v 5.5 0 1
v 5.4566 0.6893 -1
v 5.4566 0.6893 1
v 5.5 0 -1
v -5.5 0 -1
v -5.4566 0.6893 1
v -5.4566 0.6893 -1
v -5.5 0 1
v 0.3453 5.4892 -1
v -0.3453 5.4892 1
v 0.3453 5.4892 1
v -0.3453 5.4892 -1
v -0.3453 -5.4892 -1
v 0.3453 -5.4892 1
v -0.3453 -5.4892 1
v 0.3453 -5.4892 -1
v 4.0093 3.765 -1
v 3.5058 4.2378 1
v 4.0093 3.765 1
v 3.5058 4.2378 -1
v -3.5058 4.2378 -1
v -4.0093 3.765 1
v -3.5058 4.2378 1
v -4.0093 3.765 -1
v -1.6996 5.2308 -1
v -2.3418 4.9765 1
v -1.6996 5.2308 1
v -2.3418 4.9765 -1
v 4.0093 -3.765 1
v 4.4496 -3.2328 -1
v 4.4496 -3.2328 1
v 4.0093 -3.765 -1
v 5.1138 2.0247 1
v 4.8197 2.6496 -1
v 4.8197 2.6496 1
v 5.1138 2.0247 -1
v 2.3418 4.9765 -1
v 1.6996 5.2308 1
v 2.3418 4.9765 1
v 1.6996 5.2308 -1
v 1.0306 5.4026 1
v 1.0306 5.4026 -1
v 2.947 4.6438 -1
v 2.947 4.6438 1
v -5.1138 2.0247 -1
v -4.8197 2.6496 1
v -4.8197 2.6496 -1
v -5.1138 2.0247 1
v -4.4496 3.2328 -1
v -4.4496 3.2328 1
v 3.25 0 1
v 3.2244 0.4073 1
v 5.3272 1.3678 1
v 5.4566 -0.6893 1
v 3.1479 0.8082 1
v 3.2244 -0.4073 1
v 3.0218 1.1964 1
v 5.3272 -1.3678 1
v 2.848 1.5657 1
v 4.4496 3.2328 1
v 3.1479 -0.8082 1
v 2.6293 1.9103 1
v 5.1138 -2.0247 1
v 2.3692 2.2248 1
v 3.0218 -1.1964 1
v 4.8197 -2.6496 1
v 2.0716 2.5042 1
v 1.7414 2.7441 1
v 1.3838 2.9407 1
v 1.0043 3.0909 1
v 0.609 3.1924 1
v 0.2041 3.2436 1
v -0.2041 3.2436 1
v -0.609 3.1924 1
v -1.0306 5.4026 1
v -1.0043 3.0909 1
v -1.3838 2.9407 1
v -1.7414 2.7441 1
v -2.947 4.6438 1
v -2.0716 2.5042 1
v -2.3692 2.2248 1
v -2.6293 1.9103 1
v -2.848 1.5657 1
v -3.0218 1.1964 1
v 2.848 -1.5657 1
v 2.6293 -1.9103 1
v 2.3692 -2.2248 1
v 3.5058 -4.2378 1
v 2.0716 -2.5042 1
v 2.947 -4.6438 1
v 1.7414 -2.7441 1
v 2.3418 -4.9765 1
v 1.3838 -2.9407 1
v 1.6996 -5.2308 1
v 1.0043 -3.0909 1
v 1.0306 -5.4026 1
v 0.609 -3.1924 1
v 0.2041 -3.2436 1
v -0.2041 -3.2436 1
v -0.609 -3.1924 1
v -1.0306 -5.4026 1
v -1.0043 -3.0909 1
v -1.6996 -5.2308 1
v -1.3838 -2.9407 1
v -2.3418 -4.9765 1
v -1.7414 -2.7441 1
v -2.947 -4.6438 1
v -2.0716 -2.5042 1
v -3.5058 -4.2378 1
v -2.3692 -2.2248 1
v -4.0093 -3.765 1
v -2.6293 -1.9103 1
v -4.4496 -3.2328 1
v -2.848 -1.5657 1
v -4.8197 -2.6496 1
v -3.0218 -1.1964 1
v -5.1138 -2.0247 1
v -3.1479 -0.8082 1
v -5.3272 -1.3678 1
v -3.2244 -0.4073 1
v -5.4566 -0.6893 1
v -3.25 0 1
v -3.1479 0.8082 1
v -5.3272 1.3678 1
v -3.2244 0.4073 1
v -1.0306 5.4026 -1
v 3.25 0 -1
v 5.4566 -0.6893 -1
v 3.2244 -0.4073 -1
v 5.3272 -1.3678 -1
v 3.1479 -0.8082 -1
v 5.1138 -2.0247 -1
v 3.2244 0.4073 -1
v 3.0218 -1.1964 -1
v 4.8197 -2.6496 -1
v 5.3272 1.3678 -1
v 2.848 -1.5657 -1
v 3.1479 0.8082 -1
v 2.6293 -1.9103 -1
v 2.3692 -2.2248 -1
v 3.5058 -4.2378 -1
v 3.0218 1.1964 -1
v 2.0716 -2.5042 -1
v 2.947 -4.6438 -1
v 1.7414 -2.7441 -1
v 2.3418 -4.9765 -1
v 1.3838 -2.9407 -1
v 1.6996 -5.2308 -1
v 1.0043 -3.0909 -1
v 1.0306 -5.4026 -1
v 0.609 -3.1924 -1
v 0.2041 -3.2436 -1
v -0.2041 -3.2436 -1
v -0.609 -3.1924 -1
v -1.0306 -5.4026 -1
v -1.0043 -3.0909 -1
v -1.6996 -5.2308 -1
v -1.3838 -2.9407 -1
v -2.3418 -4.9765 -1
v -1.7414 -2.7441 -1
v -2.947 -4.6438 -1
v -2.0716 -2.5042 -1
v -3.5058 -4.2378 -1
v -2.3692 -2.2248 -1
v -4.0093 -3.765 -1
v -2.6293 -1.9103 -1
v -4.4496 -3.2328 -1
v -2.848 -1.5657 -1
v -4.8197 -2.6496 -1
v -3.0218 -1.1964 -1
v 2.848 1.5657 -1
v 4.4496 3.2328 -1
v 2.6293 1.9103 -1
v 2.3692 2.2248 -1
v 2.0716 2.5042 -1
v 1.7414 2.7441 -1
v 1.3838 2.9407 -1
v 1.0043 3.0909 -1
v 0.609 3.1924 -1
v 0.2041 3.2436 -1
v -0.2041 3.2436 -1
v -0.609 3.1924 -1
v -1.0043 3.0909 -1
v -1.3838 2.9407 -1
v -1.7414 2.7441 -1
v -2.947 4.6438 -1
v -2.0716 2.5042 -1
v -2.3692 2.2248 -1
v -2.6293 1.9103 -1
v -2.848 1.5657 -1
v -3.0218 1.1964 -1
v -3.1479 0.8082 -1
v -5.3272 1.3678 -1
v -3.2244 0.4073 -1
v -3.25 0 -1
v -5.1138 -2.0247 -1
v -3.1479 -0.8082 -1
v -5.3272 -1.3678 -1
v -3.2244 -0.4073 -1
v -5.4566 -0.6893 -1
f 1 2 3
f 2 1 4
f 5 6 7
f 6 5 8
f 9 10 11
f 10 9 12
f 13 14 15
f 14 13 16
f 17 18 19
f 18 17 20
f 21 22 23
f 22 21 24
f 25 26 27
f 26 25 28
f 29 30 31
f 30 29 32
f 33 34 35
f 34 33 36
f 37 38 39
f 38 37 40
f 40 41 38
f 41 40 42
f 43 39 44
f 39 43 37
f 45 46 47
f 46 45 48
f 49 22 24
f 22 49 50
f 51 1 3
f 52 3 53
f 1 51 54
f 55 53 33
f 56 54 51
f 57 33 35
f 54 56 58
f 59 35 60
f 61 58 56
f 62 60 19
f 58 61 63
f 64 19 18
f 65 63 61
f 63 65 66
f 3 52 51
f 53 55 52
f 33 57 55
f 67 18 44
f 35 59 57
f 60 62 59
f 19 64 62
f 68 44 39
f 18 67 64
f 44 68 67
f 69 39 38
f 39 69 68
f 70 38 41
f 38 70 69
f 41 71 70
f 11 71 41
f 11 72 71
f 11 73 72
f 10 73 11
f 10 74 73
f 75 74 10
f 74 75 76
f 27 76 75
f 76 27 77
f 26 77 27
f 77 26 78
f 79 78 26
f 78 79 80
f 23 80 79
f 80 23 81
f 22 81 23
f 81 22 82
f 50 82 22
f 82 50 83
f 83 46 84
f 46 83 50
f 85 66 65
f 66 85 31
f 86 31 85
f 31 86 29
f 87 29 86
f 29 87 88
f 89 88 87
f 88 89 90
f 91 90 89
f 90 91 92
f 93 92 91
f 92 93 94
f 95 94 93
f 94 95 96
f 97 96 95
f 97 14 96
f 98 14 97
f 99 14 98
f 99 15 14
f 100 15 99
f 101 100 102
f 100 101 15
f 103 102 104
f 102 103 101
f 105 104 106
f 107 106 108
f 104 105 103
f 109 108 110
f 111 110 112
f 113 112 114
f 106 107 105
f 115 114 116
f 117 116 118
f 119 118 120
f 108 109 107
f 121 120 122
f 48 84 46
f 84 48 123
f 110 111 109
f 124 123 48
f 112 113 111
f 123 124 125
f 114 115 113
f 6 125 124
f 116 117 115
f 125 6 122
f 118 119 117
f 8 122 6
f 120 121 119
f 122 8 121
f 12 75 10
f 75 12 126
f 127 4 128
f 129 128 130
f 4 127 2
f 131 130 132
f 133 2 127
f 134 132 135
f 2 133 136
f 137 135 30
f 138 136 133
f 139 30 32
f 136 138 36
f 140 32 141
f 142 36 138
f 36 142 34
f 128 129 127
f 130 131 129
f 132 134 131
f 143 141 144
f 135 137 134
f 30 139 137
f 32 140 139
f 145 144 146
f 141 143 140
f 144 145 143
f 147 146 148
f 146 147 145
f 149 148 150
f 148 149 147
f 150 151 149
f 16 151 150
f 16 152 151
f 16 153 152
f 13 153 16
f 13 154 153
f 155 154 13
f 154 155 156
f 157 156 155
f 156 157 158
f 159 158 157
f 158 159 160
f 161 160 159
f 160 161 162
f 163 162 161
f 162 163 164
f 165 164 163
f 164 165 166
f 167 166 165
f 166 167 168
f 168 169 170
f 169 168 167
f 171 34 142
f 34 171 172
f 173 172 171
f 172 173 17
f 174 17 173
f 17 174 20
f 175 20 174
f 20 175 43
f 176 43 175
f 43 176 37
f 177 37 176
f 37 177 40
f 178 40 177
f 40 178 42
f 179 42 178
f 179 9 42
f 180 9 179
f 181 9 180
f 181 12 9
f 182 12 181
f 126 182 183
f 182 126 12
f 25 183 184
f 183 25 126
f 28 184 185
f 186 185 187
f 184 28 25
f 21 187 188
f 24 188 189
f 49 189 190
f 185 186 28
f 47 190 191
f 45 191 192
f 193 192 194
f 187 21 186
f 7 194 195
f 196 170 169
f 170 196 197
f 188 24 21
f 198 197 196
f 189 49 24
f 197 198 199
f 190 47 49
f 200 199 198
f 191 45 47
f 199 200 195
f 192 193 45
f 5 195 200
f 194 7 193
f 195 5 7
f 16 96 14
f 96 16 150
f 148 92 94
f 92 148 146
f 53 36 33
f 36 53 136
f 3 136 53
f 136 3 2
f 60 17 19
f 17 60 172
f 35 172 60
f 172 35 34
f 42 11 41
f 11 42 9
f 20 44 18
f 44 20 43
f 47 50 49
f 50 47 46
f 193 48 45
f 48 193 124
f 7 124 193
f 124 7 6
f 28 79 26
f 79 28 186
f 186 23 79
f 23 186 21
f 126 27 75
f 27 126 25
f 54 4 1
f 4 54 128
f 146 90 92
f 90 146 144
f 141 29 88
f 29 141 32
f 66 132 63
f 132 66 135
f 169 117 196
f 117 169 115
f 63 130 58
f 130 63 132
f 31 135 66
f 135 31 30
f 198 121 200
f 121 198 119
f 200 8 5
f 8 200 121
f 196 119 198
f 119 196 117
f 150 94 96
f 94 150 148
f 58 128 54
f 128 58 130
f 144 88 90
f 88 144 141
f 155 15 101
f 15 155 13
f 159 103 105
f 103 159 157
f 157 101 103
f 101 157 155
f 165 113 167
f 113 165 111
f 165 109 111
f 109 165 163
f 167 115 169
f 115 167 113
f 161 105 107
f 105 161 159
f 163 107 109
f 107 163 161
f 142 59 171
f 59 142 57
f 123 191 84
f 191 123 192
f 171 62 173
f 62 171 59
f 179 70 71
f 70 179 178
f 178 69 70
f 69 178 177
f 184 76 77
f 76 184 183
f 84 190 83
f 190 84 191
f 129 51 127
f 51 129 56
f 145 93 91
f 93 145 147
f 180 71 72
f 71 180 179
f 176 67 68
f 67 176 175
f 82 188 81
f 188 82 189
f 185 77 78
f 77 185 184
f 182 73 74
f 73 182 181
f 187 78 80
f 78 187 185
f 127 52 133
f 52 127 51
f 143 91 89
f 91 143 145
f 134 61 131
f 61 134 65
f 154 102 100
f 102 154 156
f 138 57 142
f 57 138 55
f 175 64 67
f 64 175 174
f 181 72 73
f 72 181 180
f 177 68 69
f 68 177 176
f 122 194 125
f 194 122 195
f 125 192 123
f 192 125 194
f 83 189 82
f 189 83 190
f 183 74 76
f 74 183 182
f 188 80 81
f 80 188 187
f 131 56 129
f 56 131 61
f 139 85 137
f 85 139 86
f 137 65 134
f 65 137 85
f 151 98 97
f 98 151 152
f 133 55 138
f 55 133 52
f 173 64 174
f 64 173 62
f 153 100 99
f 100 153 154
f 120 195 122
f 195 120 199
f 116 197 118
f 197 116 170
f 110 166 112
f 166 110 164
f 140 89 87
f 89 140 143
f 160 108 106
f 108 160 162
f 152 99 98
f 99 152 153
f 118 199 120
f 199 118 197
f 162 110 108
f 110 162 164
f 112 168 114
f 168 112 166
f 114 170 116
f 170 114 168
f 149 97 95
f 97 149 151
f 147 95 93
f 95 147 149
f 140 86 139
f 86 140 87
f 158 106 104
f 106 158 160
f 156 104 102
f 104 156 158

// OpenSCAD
$fn = 50;


difference() {
	union() {
		translate(v = [0, 0, -1.0000000000]) {
			cylinder(h = 2, r = 5.5000000000);
		}
	}
	union() {
		translate(v = [0, 0, -100.0000000000]) {
			cylinder(h = 200, r = 3.2500000000);
		}
	}
}
